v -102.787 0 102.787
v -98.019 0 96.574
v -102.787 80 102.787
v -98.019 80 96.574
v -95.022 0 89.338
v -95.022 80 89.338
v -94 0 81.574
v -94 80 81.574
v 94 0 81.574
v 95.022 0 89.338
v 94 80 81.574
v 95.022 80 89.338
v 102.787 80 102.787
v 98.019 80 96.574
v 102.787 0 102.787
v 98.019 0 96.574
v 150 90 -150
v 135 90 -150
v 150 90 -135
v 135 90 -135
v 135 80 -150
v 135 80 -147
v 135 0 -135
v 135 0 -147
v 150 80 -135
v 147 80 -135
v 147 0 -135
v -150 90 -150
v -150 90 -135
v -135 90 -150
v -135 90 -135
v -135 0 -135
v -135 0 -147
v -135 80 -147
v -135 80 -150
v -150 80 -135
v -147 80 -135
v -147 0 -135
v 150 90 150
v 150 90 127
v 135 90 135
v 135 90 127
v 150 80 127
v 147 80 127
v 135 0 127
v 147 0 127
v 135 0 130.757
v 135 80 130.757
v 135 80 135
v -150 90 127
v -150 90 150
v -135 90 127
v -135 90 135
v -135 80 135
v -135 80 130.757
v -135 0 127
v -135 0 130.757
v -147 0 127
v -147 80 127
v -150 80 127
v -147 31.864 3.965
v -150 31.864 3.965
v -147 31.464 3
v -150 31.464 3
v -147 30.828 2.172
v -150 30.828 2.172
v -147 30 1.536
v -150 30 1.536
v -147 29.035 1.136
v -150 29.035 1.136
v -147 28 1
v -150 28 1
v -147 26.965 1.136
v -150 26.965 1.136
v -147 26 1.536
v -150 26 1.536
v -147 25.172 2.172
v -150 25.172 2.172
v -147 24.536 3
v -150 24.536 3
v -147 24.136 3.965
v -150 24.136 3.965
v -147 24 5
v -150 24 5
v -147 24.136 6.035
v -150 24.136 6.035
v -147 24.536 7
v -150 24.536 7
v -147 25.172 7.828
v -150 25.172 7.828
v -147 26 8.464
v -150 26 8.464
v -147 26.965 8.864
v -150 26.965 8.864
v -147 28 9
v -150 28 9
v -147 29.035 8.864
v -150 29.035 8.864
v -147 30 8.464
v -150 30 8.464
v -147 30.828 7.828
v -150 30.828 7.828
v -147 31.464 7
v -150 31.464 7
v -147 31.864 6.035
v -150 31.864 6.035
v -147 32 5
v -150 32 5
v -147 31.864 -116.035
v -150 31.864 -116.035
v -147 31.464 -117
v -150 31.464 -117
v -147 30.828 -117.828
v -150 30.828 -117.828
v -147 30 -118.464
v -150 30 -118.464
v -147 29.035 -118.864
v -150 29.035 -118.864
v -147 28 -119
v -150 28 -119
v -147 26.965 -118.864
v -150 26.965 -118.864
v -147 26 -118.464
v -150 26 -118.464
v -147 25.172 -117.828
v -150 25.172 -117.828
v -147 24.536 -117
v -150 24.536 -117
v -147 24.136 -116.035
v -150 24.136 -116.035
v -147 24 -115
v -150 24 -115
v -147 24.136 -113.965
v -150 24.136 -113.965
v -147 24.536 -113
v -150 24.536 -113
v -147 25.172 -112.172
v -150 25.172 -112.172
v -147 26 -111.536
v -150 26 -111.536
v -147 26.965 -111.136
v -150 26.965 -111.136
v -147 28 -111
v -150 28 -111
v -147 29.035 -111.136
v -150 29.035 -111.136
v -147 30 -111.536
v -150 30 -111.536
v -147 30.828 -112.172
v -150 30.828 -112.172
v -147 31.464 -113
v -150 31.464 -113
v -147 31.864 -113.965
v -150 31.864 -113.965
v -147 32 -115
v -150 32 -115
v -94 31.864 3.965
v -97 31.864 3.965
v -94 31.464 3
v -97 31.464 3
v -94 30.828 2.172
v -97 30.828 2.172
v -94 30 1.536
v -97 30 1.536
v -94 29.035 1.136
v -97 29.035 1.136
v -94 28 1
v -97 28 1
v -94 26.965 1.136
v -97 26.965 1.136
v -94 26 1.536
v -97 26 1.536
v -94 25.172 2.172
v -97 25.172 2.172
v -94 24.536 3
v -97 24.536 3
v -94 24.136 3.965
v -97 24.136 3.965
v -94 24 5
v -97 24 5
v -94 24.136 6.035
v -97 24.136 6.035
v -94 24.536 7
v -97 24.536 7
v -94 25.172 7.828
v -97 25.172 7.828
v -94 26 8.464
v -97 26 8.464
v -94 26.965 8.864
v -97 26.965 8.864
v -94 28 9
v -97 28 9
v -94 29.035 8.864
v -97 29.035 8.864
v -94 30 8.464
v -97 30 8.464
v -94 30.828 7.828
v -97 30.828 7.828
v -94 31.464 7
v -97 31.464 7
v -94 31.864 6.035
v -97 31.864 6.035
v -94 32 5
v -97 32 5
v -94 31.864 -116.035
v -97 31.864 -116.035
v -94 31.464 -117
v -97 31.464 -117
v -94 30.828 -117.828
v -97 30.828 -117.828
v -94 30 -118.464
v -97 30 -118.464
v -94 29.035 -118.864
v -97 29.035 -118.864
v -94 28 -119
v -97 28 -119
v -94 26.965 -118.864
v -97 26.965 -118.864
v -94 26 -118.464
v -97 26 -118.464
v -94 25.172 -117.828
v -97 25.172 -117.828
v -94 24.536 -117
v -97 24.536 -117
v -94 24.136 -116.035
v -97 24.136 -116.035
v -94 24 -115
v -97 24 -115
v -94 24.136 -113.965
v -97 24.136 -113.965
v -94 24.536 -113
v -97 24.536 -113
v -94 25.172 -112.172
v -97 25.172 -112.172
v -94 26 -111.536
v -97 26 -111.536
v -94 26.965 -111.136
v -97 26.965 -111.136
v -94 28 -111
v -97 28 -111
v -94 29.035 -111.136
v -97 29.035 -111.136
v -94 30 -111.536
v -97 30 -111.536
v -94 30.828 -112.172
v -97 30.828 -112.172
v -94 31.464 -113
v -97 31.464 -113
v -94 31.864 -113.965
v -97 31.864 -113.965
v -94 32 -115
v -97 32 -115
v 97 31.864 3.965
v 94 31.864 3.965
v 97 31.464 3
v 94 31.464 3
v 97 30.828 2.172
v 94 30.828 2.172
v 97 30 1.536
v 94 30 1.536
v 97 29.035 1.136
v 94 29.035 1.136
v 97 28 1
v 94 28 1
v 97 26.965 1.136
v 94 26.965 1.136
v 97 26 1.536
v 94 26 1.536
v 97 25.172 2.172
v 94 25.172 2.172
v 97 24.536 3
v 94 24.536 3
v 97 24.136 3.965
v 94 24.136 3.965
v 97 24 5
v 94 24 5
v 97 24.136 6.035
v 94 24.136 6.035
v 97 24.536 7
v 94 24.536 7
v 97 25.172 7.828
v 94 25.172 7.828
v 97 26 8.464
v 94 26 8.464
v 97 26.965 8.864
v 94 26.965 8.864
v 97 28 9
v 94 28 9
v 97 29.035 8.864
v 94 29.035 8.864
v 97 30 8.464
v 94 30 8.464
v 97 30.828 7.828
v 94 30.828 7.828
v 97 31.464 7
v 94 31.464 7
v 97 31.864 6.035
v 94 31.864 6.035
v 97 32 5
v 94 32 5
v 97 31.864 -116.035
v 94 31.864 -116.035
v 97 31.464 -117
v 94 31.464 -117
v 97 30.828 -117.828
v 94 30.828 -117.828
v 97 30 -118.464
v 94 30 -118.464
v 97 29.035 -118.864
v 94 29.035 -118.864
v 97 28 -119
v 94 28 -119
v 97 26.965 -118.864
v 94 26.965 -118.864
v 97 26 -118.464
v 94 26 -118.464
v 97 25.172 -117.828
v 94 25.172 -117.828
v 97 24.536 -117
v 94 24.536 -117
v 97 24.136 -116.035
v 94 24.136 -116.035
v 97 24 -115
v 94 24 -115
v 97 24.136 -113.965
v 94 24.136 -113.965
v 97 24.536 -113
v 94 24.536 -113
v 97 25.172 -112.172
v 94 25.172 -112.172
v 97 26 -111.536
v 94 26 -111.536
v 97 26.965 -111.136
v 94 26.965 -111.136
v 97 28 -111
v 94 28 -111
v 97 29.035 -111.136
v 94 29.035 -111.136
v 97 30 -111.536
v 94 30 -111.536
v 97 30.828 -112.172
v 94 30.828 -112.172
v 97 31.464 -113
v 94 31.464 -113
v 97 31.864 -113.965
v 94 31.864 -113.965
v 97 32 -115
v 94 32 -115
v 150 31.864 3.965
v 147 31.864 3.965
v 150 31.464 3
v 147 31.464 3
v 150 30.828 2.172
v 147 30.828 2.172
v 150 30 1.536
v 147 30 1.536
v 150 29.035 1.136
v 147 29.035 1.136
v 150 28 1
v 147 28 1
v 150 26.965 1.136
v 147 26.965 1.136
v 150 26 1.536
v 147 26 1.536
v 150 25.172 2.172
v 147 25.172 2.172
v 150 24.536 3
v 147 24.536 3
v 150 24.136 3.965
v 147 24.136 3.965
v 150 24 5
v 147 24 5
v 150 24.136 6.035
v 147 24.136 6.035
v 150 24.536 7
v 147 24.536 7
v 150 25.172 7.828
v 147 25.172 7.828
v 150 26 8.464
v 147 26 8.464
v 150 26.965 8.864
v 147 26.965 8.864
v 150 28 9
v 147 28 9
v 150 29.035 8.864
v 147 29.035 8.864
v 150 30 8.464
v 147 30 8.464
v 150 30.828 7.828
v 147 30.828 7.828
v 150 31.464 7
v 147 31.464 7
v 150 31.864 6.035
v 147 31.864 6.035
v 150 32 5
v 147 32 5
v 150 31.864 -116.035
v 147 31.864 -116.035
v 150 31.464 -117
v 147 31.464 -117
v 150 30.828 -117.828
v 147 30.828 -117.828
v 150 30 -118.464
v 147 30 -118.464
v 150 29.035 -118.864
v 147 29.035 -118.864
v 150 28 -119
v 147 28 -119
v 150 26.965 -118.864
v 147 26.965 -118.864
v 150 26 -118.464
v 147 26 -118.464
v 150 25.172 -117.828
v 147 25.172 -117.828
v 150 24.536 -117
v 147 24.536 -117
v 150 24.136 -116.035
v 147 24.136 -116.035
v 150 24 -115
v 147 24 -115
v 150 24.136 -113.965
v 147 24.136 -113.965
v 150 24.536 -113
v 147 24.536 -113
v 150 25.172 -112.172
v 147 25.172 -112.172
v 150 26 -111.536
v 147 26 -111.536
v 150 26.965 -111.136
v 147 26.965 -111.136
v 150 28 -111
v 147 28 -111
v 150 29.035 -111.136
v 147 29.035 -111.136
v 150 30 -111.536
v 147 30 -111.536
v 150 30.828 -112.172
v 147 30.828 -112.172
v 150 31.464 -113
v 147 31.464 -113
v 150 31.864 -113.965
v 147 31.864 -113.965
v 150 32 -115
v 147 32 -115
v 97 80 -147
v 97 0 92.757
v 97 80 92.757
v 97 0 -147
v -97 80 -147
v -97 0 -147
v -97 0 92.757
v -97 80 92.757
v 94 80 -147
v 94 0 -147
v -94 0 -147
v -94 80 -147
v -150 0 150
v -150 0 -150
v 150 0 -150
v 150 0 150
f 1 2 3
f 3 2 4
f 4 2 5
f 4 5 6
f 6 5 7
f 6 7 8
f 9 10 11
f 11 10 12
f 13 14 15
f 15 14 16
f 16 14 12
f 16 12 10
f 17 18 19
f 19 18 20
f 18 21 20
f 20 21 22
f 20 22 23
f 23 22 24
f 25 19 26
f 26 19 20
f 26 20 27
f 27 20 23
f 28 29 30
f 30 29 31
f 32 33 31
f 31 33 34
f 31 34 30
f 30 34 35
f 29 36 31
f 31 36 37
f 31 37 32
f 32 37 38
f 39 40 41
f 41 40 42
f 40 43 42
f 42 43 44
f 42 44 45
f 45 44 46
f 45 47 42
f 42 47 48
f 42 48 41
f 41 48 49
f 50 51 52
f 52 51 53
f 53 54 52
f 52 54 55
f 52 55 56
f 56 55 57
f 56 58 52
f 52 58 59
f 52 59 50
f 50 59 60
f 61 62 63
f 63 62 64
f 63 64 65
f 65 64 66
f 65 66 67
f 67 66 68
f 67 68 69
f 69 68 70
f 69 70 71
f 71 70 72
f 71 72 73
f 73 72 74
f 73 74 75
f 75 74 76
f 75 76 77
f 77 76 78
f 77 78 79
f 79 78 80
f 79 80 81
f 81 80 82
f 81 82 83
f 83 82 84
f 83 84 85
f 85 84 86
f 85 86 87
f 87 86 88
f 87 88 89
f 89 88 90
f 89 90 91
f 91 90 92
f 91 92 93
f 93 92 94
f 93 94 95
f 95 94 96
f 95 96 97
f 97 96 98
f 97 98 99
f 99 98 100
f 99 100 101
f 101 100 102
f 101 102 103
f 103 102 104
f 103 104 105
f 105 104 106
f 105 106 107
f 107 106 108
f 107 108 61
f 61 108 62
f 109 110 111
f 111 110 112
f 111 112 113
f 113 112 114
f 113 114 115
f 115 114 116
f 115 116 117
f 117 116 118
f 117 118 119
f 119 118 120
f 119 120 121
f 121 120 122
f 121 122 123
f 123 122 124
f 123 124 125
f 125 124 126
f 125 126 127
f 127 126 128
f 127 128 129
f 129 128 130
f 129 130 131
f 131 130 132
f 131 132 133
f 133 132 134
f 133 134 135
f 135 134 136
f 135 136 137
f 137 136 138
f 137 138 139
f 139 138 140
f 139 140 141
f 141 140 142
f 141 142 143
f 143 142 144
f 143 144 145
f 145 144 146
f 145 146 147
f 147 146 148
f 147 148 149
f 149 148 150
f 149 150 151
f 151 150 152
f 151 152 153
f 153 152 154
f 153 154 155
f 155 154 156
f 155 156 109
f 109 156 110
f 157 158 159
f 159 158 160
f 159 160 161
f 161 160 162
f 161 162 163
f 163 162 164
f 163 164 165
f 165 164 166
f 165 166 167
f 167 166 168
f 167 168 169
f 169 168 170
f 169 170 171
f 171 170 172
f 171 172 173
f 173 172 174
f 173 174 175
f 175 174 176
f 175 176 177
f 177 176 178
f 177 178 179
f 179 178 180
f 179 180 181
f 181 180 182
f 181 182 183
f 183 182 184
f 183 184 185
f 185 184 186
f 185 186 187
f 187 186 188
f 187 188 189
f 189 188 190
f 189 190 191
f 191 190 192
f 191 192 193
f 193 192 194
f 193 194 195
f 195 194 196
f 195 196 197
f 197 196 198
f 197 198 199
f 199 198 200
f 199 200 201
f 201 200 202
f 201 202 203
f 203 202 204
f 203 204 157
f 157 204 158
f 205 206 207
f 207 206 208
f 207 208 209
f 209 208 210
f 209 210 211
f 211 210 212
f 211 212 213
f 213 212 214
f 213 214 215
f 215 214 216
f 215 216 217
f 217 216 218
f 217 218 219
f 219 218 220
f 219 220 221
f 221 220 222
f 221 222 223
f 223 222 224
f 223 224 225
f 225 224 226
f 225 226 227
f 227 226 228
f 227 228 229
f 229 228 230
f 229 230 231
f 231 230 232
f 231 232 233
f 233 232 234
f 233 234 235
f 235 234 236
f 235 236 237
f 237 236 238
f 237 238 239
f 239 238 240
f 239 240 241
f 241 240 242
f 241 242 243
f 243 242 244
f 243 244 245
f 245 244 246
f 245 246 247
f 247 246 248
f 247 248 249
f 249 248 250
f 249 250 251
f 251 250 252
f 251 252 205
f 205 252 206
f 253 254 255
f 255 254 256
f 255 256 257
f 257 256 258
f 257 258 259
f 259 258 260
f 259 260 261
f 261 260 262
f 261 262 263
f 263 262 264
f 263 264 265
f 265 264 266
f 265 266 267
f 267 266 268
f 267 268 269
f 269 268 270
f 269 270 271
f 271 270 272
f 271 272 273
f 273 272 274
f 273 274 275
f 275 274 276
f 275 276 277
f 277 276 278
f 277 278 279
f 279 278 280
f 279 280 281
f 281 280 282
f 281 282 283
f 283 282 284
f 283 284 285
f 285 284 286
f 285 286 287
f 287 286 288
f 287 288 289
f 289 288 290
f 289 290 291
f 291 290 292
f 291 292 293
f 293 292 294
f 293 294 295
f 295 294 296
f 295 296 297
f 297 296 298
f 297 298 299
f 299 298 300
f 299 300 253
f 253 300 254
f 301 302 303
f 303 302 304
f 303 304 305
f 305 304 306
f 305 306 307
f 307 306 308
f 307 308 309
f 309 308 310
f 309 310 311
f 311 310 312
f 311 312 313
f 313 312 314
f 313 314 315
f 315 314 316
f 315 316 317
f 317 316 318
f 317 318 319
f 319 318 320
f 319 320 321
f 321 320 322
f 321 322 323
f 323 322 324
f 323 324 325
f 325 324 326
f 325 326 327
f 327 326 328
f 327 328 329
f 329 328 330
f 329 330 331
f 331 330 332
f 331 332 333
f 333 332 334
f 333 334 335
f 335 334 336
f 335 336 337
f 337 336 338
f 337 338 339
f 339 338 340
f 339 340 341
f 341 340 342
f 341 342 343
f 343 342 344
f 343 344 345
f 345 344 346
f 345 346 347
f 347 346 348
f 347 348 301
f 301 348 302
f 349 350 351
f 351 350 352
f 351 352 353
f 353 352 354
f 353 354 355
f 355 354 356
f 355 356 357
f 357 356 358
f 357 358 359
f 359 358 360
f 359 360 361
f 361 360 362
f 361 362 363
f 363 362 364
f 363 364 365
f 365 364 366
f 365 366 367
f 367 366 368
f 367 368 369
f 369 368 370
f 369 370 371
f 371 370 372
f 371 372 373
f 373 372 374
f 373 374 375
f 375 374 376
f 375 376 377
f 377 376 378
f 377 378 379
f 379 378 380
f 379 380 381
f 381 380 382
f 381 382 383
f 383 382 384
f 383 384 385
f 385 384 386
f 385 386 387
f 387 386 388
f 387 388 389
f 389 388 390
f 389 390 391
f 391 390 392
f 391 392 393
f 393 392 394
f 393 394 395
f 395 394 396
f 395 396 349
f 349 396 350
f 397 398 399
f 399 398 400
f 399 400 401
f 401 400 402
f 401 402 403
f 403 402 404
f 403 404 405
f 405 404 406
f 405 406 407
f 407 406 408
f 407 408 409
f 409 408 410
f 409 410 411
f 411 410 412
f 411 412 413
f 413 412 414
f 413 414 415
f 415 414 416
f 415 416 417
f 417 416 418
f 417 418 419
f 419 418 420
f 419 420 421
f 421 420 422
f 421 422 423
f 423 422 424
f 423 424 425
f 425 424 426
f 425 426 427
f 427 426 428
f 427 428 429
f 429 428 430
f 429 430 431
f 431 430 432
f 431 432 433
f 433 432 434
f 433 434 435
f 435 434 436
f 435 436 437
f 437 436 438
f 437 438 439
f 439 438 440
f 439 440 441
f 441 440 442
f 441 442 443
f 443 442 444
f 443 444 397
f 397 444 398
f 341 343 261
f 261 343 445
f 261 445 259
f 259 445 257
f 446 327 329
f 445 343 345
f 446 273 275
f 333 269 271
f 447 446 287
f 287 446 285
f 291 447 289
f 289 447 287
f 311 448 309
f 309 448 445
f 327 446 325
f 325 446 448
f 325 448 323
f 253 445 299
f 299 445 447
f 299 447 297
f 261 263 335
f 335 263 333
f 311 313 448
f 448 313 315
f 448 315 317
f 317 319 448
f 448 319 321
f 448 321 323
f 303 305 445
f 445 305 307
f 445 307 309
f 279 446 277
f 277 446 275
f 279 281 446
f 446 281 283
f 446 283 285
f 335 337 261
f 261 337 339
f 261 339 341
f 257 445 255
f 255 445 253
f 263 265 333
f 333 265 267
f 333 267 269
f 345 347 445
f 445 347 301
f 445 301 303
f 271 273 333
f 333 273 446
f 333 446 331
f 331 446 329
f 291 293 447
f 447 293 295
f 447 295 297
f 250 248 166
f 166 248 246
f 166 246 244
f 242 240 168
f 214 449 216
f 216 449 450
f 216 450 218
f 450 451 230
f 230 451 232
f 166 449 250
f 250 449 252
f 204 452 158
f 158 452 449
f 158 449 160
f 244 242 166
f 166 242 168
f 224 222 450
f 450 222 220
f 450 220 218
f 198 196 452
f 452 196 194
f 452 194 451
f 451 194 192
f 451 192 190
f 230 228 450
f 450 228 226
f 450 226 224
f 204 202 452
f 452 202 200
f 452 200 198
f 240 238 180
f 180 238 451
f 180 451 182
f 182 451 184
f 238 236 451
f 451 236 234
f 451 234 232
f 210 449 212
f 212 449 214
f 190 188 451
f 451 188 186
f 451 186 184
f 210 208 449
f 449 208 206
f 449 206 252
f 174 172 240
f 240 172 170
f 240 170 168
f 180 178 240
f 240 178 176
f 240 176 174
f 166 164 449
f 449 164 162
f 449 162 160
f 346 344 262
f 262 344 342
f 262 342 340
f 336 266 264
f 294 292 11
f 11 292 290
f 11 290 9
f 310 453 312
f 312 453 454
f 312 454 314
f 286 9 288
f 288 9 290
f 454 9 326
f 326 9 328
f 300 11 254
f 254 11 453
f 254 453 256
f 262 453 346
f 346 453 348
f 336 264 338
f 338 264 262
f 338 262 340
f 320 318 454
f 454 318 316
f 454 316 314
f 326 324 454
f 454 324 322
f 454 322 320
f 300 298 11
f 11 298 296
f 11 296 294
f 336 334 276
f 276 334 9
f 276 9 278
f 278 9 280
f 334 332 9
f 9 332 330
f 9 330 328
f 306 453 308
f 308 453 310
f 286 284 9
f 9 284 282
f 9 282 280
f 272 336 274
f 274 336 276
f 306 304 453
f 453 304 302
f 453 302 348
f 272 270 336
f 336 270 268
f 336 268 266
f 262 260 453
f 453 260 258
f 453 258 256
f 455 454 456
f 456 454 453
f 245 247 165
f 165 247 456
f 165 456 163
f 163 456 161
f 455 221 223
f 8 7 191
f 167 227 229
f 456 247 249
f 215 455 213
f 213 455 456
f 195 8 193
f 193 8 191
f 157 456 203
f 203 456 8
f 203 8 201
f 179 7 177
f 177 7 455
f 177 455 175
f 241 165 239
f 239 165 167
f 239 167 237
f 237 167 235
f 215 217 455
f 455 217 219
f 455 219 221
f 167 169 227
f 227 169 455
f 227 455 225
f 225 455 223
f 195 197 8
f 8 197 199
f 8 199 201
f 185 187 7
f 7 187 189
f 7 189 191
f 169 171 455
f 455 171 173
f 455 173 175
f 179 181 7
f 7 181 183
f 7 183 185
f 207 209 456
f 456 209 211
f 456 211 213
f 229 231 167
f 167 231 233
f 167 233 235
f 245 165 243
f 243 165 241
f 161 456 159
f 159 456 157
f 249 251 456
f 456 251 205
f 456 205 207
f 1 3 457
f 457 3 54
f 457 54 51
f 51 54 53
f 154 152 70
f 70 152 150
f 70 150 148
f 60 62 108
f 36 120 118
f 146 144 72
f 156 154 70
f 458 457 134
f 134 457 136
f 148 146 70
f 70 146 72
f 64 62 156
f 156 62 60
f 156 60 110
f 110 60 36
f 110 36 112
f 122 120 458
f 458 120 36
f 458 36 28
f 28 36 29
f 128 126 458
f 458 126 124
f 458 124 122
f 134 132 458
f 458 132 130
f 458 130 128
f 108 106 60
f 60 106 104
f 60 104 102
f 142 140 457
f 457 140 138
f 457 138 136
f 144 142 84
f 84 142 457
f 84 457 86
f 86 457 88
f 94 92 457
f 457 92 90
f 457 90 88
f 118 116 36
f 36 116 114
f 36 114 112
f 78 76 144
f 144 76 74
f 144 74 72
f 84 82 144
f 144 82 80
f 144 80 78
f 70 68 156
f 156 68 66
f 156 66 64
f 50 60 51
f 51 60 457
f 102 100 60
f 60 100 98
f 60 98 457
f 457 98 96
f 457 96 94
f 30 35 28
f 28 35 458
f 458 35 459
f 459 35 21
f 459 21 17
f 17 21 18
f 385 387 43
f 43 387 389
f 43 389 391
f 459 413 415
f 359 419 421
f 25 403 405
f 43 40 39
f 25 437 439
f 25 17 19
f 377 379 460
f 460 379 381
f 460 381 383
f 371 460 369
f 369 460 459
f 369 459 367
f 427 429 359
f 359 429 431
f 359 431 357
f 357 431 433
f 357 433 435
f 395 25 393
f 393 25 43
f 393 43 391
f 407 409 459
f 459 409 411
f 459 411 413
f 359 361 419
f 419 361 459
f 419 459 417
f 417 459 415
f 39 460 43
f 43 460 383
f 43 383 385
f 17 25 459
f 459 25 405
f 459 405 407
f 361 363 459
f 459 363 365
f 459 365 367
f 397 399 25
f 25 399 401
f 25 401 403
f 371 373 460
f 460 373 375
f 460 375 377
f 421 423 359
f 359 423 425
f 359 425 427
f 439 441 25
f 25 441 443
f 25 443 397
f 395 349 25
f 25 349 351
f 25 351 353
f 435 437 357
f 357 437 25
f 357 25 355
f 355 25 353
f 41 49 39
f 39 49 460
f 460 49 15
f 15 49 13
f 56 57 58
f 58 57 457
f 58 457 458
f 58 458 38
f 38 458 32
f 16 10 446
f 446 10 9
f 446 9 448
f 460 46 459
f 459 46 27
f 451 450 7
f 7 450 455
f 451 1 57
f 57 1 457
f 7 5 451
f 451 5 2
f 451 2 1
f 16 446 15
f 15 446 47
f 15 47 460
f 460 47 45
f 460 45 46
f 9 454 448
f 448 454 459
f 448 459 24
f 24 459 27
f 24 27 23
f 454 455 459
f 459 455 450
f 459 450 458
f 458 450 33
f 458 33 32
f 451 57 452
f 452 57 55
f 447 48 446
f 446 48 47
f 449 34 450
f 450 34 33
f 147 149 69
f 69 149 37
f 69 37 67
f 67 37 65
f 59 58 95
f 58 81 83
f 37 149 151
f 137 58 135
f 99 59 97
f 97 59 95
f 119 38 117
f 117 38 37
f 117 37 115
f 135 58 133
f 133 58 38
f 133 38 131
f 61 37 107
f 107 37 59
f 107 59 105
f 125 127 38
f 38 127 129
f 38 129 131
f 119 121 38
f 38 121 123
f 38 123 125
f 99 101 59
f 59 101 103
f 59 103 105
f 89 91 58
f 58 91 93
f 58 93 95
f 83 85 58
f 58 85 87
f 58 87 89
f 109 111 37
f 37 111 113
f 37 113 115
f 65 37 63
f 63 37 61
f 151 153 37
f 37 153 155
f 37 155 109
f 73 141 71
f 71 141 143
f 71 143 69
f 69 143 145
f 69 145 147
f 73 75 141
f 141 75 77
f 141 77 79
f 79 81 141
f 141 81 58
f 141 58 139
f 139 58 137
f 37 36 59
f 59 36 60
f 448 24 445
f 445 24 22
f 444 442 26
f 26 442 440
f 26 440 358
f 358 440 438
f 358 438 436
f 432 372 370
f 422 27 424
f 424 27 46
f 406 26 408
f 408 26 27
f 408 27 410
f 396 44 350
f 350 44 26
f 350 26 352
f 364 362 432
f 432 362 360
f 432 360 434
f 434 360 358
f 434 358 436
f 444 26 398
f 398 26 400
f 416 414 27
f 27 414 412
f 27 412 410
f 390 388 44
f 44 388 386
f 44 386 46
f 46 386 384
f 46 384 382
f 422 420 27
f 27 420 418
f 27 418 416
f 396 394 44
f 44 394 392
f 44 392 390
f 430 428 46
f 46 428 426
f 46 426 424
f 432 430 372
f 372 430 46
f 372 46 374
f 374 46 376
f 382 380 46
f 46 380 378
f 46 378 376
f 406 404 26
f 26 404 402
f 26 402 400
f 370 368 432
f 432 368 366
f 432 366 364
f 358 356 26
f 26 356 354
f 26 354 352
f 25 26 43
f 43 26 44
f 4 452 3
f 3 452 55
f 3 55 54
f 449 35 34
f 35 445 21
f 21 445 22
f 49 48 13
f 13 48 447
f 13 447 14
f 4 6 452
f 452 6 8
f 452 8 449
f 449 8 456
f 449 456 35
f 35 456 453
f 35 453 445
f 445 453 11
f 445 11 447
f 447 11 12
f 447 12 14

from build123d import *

# Parameters (mm, degrees)
BOSS_EXTRUDE1_DEPTH     = 80
CUT_EXTRUDE1_DEPTH      = 227.715680975
CUT_EXTRUDE1_DEPTH_BACK = 227.715680975
SKETCH2_R               = 4
SKETCH5_W               = 15
SKETCH5_H               = 15
BOSS_EXTRUDE2_DEPTH     = 90
FILLET1_R               = 30


with BuildPart() as part:
    # Sketch1 → Boss-Extrude1 (new body)
    with BuildSketch(Plane(origin=(0, 0, 0), x_dir=(1, 0, 0), z_dir=(0, 1, 0))):
        Polygon((-150, 150), (150, 150), (150, -150), (94, -94), (94, 147), (-94, 147), (-94, -94), (-150, -150), align=None)
        Polygon((-147, 147), (-97, 147), (-97, -92.757359313), (-147, -142.757359313), align=None, mode=Mode.SUBTRACT)
        Polygon((147, 147), (147, -142.757359313), (97, -92.757359313), (97, 147), align=None, mode=Mode.SUBTRACT)
    extrude(amount=BOSS_EXTRUDE1_DEPTH)

    # Sketch2 → Cut-Extrude1 (cut, two sides: drawn at the far end of the back side and taken through both)
    with BuildSketch(Plane(origin=(0, 0, 0), x_dir=(0, 0, -1), z_dir=(1, 0, 0)).offset(-CUT_EXTRUDE1_DEPTH_BACK)):
        with Locations((115, 28)):
            Circle(SKETCH2_R)
        with Locations((-5, 28)):
            Circle(SKETCH2_R)
    extrude(amount=CUT_EXTRUDE1_DEPTH + CUT_EXTRUDE1_DEPTH_BACK, mode=Mode.SUBTRACT)

    # Sketch5 → Boss-Extrude2 (add)
    with BuildSketch(Plane(origin=(0, 0, 0), x_dir=(1, 0, 0), z_dir=(0, 1, 0))):
        Polygon((-150, -127), (-135, -127), (-135, -135), (-150, -150), (-150, -140.427238406), align=None)
        Polygon((150, -150), (135, -135), (135, -127), (150, -127), (150, -140.427238406), align=None)
        with Locations((142.5, 142.5)):
            Rectangle(SKETCH5_W, SKETCH5_H)
        with Locations((-142.5, 142.5)):
            Rectangle(SKETCH5_W, SKETCH5_H)
    extrude(amount=BOSS_EXTRUDE2_DEPTH)

    # Fillet1
    fillet1_edges = [part.edges().sort_by_distance(p)[0] for p in [
        (94, 40, 94),
        (-94, 40, 94),
    ]]
    fillet(fillet1_edges, radius=FILLET1_R)


solid = part.part
